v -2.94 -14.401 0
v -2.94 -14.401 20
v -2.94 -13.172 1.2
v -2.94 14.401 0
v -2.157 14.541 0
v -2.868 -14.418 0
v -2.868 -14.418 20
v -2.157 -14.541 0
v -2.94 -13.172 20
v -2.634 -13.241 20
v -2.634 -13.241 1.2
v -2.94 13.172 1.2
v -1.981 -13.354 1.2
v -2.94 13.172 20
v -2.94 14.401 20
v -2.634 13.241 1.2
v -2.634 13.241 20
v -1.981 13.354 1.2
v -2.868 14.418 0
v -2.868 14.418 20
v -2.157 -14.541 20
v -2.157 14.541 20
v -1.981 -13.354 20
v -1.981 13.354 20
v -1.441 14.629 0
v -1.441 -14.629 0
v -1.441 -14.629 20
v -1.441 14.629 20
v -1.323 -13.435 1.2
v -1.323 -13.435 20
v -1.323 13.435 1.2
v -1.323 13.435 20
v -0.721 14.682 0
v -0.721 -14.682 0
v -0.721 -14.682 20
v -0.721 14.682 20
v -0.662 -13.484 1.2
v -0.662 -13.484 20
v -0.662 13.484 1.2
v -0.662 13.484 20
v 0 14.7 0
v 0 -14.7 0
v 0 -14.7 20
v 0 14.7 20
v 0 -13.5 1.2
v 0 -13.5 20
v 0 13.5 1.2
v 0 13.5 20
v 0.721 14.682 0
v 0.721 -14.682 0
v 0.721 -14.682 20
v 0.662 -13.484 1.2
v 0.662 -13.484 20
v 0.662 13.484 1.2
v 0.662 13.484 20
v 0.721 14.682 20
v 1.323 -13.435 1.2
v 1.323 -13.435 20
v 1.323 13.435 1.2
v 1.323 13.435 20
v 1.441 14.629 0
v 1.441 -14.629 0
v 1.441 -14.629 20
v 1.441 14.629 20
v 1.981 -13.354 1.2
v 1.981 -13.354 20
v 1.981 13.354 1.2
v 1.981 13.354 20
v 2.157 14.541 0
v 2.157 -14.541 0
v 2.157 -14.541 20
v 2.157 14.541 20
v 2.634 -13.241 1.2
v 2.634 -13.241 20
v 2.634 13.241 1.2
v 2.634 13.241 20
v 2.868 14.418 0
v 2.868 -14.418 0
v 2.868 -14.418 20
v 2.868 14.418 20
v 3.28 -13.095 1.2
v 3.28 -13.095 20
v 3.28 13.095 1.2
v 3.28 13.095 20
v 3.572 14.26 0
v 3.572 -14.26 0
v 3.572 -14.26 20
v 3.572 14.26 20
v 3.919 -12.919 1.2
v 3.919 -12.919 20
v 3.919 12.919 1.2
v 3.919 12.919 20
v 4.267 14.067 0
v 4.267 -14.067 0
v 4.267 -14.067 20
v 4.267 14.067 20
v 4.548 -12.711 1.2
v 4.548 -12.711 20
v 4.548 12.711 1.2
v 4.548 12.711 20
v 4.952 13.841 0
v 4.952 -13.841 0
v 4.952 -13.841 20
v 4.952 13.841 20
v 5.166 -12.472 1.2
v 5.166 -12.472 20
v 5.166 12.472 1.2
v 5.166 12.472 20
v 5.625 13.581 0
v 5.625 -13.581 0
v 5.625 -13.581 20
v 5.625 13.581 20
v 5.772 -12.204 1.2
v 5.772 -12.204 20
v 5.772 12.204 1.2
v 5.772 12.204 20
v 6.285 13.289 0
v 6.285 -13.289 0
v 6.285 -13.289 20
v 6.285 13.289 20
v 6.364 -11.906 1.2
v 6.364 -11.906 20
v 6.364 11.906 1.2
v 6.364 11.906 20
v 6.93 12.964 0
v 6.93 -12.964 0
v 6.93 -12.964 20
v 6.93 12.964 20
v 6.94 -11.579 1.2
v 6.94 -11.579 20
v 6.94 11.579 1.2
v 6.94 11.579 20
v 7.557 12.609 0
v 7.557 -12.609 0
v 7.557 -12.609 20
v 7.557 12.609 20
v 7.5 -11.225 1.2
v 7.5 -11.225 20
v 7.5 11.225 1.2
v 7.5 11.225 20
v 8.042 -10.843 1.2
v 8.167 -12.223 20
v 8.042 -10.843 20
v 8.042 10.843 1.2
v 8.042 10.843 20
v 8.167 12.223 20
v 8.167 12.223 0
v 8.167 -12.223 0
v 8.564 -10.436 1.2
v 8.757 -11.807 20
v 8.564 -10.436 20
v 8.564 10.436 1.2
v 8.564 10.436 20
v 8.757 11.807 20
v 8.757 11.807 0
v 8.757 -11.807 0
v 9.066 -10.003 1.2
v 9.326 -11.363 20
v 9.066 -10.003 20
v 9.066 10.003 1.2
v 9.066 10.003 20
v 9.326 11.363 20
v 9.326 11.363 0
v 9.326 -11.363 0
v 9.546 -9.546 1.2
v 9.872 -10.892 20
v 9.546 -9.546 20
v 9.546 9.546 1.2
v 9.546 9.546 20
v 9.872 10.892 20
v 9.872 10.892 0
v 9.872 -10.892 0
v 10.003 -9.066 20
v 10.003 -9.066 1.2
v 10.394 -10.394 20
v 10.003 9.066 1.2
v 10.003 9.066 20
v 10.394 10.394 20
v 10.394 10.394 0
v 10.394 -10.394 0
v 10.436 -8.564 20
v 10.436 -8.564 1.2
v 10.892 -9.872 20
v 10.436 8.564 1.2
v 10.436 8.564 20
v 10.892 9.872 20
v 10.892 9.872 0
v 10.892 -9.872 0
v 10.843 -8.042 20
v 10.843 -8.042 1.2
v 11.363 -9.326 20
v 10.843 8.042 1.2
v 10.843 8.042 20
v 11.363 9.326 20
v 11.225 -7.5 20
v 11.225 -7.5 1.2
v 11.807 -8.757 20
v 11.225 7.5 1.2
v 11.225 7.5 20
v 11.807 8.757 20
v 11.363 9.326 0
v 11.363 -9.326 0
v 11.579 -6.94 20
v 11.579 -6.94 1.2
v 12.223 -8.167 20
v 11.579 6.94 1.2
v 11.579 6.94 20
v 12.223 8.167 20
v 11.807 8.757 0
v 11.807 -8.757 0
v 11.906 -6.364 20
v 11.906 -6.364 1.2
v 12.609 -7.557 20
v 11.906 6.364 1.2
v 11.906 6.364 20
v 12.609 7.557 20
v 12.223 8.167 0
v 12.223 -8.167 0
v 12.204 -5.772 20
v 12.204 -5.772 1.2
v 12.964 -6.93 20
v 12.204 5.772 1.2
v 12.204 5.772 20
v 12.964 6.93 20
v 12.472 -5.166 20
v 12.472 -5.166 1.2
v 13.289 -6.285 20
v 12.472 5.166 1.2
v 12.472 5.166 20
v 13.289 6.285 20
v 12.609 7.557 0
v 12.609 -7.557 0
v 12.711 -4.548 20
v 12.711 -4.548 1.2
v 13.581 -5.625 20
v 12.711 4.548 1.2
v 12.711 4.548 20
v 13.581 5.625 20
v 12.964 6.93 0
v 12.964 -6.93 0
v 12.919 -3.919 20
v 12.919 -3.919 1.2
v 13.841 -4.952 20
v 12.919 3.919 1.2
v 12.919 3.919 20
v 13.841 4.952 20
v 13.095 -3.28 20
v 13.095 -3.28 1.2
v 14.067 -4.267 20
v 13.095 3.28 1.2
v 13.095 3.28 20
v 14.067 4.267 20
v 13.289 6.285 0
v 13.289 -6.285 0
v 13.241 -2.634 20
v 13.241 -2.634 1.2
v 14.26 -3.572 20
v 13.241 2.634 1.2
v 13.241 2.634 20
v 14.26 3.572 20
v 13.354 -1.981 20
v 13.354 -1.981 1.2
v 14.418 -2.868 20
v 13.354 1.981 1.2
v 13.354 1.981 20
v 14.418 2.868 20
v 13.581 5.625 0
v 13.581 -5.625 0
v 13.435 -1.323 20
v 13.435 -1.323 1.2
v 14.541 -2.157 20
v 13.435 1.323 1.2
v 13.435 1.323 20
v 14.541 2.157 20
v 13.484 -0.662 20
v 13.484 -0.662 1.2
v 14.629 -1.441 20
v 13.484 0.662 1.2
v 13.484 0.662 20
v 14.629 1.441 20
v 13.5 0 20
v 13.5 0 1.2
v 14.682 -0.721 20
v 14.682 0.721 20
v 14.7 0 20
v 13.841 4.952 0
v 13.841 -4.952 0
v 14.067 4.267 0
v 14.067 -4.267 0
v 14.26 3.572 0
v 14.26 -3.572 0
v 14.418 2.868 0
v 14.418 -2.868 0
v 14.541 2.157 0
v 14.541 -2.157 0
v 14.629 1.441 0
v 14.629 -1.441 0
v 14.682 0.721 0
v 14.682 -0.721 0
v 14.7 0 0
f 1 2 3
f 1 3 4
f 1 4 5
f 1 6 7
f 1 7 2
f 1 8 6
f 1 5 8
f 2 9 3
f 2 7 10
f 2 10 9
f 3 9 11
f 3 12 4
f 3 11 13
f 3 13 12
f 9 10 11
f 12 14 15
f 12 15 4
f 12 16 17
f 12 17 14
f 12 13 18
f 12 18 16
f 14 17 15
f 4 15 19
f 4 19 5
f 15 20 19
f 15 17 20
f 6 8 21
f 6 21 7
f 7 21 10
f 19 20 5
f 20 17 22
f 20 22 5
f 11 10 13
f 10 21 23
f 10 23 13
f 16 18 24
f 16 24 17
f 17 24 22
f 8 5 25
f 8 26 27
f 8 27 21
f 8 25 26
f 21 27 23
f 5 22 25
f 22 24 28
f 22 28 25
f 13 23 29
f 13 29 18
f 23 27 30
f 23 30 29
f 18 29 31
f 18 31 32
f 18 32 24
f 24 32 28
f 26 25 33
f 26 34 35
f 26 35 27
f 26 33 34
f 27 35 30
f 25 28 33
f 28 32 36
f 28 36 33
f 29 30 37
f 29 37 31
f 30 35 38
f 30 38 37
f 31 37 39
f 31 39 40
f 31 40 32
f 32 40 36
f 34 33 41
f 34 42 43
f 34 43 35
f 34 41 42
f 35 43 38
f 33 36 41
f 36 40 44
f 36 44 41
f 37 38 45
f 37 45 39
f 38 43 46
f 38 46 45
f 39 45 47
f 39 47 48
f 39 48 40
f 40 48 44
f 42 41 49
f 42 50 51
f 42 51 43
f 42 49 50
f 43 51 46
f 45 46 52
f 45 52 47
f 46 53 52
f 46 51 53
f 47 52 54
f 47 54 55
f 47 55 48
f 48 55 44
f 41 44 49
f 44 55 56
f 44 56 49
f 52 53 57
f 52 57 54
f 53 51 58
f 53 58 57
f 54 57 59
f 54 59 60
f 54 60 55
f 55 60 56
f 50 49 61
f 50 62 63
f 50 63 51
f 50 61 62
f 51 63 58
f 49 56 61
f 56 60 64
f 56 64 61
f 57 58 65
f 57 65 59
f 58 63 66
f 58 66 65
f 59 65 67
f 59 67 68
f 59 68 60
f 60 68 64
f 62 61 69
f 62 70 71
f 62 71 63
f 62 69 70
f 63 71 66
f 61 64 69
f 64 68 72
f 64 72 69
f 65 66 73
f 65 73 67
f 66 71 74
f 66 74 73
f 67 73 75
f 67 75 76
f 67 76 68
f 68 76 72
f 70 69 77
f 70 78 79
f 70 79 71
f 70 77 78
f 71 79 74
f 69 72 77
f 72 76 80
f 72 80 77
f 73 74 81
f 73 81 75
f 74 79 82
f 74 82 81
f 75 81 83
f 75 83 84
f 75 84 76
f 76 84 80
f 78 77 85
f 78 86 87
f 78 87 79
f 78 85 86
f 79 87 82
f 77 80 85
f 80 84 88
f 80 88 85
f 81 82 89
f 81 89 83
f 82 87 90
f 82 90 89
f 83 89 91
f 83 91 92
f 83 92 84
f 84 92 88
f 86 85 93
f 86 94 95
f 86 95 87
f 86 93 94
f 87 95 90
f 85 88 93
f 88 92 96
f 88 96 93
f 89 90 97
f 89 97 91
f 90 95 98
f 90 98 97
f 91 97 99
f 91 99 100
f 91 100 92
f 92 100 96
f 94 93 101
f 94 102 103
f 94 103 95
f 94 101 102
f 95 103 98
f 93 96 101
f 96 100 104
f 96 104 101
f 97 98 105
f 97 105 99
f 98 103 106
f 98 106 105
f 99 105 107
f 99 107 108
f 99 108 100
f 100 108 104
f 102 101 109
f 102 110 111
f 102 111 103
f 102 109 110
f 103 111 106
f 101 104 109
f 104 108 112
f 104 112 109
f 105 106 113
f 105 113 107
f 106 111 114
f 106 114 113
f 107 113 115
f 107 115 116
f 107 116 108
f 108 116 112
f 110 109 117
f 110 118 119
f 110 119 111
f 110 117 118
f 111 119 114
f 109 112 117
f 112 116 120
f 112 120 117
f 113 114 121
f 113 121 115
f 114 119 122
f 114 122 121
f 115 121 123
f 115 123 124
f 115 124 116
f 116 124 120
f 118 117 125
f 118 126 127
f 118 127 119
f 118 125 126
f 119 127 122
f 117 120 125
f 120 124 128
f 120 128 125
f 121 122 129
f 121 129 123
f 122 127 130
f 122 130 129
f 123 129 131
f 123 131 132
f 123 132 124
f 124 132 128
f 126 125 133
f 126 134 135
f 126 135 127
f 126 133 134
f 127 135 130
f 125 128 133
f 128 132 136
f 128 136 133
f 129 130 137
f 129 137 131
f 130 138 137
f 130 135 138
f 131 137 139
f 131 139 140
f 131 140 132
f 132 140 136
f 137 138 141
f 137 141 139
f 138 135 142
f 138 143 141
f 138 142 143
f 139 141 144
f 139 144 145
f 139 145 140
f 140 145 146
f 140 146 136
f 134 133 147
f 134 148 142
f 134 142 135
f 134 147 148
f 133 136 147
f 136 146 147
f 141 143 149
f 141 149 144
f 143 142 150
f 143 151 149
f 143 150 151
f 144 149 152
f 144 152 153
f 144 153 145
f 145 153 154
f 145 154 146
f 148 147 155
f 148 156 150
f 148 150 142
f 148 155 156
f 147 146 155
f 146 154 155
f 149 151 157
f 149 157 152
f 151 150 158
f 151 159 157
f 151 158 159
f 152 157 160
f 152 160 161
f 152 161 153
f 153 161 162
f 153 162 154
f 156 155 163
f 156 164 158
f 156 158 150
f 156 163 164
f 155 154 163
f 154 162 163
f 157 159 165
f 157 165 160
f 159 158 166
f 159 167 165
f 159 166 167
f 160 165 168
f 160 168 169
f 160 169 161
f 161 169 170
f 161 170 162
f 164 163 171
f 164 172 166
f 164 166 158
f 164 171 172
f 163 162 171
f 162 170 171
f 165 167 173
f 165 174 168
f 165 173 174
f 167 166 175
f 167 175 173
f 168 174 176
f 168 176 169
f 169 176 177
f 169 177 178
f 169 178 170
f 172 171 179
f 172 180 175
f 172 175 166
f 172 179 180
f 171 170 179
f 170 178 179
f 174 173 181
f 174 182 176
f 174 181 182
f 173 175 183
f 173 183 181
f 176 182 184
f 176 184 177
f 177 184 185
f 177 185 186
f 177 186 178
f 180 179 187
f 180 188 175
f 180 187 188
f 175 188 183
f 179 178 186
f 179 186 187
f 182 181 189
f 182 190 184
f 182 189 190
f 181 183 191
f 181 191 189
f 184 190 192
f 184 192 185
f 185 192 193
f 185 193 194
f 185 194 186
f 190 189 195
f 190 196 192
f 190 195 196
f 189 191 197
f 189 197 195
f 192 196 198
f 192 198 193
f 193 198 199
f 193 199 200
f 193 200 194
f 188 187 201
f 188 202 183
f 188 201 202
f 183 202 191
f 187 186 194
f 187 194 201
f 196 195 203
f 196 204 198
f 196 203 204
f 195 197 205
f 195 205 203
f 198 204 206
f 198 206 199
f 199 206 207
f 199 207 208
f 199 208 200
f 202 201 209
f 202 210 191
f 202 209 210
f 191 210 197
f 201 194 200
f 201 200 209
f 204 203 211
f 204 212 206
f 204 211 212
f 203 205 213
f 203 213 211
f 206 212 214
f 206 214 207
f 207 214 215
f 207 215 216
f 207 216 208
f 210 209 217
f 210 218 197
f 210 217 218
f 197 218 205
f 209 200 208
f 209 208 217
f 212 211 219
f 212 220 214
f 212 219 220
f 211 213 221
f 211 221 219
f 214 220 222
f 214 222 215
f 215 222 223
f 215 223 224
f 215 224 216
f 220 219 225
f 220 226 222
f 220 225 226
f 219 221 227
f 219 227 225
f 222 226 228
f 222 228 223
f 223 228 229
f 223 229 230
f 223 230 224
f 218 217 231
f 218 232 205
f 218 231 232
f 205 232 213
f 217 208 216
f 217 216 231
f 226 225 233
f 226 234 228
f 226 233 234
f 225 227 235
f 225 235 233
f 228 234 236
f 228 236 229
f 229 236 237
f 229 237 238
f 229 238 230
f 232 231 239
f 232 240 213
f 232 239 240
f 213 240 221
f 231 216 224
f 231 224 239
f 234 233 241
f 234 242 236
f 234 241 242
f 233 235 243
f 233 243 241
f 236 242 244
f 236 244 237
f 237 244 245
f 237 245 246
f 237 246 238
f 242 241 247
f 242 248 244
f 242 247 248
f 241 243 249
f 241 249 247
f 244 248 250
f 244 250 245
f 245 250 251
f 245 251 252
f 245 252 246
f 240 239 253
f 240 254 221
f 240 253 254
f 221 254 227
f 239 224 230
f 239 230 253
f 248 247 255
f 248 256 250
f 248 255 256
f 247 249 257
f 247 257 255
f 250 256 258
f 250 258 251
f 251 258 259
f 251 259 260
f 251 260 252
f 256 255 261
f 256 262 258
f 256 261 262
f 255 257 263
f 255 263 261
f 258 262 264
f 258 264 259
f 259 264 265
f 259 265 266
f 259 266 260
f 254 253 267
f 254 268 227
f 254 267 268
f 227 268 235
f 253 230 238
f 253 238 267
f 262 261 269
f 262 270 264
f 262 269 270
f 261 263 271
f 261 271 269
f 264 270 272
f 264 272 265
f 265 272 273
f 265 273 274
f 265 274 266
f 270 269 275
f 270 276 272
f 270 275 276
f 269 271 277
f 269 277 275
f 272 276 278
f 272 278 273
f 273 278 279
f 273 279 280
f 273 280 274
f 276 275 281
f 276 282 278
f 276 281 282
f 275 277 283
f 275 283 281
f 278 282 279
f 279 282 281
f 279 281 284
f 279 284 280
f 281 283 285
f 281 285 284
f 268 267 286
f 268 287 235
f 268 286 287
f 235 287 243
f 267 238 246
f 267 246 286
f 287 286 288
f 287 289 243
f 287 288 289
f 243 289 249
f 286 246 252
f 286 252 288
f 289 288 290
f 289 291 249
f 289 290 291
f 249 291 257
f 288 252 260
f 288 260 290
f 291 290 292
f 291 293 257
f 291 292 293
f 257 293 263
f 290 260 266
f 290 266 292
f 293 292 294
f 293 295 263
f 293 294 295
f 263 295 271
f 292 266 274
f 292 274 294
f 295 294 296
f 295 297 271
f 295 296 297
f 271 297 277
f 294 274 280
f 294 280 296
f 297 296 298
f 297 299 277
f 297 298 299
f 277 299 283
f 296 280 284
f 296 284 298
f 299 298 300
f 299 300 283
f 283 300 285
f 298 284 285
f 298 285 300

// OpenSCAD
/* [Design] */
// Internal diameter for the holder
inner_diameter = 27;
// The thickness of the outer wall
thickness = 1.2;
// The total height of the holder
height = 20;
// If we must cut at "top" of the circle, to facilitate passing objects over it
top_cut = true;

$fn=128;

module circular_mount() {
    difference() {
        cylinder(h=height, d=inner_diameter + (2*thickness));
        translate([0, 0, thickness])
            cylinder(h=height, d=inner_diameter);
        if(top_cut) {
            _cut_width = inner_diameter+(2*thickness);
            _cut_height = height+thickness;
            translate([-(_cut_width*1.1), -(_cut_width/2), -0.01])
            cube([_cut_width, _cut_width, _cut_height]);
        }
    }
}

color("white")
circular_mount();
